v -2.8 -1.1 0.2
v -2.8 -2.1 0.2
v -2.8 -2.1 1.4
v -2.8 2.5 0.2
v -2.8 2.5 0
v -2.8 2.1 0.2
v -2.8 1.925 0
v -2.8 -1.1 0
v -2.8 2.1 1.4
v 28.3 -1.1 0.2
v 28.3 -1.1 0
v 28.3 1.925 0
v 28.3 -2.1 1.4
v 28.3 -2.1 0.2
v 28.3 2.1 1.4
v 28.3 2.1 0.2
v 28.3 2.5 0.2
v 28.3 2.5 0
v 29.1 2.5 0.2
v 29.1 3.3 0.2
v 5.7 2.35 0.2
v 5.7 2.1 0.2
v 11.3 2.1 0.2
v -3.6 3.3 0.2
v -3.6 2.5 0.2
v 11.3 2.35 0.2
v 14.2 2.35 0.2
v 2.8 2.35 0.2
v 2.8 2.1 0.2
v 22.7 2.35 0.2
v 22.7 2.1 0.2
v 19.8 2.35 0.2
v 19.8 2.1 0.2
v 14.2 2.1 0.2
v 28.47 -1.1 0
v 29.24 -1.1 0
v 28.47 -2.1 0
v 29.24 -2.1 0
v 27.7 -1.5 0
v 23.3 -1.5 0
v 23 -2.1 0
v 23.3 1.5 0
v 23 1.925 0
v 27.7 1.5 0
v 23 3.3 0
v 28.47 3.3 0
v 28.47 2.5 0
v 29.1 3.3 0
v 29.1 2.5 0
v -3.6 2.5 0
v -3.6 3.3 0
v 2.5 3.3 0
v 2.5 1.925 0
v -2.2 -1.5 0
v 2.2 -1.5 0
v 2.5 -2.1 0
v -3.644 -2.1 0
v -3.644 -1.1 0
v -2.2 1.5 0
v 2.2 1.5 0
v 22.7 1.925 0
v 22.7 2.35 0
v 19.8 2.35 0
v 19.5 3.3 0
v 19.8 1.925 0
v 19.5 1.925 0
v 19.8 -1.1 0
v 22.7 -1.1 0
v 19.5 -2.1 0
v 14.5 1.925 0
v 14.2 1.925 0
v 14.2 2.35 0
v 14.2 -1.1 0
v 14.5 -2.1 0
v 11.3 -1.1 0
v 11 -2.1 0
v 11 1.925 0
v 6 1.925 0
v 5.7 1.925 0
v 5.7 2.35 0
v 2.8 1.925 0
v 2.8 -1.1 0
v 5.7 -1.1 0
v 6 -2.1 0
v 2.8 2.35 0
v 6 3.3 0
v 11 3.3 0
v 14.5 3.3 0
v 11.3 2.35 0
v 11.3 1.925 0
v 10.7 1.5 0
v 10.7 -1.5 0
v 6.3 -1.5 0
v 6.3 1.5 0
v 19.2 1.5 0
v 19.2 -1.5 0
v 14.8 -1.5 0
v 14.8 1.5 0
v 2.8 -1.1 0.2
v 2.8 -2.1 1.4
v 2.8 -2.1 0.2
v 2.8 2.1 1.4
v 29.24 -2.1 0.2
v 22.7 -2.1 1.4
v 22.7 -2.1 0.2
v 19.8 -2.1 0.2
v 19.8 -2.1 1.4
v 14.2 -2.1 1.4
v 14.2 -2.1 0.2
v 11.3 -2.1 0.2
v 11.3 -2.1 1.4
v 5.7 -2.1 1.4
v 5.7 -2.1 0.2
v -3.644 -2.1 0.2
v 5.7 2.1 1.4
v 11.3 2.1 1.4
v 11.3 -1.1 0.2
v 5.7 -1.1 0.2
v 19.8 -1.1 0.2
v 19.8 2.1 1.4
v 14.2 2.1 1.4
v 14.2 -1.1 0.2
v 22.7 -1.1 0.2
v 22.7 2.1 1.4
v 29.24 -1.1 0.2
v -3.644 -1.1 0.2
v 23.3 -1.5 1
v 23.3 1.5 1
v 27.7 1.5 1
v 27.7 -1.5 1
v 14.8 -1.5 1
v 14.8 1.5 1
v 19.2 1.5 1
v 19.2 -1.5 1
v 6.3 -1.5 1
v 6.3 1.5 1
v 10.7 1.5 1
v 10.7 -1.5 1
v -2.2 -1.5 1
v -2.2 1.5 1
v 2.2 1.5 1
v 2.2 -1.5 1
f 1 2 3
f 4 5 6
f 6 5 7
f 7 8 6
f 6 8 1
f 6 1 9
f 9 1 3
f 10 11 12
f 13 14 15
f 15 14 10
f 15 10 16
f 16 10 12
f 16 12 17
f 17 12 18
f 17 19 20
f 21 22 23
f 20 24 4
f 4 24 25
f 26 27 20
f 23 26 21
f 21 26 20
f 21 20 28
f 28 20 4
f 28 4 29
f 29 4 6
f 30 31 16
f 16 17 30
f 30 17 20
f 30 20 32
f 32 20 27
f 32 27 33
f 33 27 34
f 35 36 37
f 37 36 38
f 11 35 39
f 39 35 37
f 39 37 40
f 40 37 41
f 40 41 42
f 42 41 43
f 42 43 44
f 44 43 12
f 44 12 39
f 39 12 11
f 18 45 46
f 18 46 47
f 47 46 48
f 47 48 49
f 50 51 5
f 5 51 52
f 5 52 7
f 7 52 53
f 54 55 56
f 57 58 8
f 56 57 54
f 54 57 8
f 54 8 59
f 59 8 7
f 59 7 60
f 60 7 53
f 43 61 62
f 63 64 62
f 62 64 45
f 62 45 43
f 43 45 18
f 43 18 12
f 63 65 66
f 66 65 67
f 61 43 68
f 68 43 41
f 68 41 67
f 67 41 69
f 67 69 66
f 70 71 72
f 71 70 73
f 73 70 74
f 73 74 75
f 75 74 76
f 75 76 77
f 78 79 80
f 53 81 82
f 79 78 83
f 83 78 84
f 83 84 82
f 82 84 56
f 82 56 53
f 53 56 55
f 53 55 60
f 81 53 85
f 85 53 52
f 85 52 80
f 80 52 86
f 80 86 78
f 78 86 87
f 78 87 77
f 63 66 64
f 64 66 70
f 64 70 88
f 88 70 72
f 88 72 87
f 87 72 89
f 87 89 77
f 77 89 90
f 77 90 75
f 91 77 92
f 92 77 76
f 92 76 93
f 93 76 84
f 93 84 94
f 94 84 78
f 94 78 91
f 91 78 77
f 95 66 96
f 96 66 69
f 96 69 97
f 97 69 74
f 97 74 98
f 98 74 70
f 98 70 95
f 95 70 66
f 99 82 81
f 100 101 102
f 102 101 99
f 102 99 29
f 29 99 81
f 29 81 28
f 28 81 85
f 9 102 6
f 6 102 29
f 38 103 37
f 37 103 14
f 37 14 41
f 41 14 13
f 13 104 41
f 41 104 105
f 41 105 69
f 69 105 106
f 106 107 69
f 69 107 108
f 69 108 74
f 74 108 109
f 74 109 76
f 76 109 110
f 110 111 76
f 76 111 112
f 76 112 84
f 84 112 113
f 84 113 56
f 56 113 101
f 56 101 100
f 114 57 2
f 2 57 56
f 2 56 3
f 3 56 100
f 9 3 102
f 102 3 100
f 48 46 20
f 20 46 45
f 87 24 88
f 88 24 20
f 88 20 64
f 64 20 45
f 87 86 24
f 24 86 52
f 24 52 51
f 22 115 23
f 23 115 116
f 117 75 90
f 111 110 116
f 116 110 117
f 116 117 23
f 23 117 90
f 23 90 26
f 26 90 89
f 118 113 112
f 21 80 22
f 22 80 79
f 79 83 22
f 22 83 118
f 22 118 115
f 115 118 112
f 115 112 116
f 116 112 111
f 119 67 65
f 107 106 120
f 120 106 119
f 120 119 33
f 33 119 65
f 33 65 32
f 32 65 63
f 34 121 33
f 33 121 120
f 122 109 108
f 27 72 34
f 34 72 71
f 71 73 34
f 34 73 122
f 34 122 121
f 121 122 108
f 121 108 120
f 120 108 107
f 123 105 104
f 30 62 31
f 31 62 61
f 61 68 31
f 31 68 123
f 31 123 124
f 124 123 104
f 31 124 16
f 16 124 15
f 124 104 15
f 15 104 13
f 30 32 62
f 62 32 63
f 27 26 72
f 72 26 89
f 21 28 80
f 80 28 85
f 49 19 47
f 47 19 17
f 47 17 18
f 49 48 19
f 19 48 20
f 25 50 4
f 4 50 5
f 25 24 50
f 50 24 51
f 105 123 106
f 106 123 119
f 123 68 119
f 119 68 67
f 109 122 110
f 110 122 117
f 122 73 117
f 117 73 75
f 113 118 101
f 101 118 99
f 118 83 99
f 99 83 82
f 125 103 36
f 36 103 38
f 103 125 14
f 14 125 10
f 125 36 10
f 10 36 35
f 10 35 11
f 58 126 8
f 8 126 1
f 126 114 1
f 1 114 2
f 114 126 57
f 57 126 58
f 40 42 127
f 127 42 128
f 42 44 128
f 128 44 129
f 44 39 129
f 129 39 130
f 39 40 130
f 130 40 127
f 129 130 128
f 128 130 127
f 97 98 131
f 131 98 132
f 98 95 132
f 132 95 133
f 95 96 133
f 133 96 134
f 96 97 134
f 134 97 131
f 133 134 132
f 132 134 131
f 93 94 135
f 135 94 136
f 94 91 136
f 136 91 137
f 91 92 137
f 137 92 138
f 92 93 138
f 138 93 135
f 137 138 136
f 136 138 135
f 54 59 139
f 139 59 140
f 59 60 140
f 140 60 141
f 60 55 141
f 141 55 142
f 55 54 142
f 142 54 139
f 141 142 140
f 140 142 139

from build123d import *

# Parameters (mm, degrees)
SKETCH_1_W             = 5.6
SKETCH_1_H             = 4.2
EXTRUDE_1_DEPTH        = 1.4
SKETCH_3_W             = 31.1
SKETCH_3_H             = 1.5
EXTRUDE_2_DEPTH        = 0.2
PATTERN_LINEAR_1_COUNT = 4
PATTERN_LINEAR_1_PITCH = 8.5
SKETCH_4_W             = 2.9
SKETCH_4_H             = 1.1
CUT_EXTRUDE_1_DEPTH    = 0.2
SKETCH_5_W             = 0.2
SKETCH_5_H             = 0.8
EXTRUDE_3_DEPTH        = 0.8
SKETCH_6_W             = 0.2
SKETCH_6_H             = 0.8
EXTRUDE_4_DEPTH        = 0.8
SKETCH_7_W             = 32.884134448
SKETCH_7_H             = 1
EXTRUDE_5_DEPTH        = 0.2
CUT_EXTRUDE_START      = -0.4
SKETCH_8_W             = 4.4
SKETCH_8_H             = 3
CUT_EXTRUDE_2_DEPTH    = 1


with BuildPart() as part:
    # Эскиз1 → Бобышка-Вытянуть1 (new body)
    with BuildSketch(Plane.XY):
        Rectangle(SKETCH_1_W, SKETCH_1_H)
    extrude_1 = extrude(amount=EXTRUDE_1_DEPTH)

    # Эскиз3 → Бобышка-Вытянуть2 (add)
    with BuildSketch(Plane(origin=(0, 0, 0), x_dir=(-1, 0, 0), z_dir=(0, 0, -1))):
        with Locations((-12.75, 2.55)):
            Rectangle(SKETCH_3_W, SKETCH_3_H)
    extrude(amount=-EXTRUDE_2_DEPTH)

    # Линейный массив1: Бобышка-Вытянуть1 ×4
    with Locations(*[(i * PATTERN_LINEAR_1_PITCH, 0, 0) for i in range(1, PATTERN_LINEAR_1_COUNT)]):
        add(extrude_1)

    # Эскиз4 → Вырез-Вытянуть1 (cut)
    with BuildSketch(Plane(origin=(0, 0, 0), x_dir=(-1, 0, 0), z_dir=(0, 0, -1))):
        with Locations((-21.25, 1.8)):
            Rectangle(SKETCH_4_W, SKETCH_4_H)
        with Locations((-12.75, 1.8)):
            Rectangle(SKETCH_4_W, SKETCH_4_H)
        with Locations((-4.25, 1.8)):
            Rectangle(SKETCH_4_W, SKETCH_4_H)
    extrude(amount=-CUT_EXTRUDE_1_DEPTH, mode=Mode.SUBTRACT)

    # Эскиз5 → Бобышка-Вытянуть3 (add)
    with BuildSketch(Plane(origin=(28.3, 0, 0), x_dir=(0, 0, -1), z_dir=(1, 0, 0))):
        with Locations((-0.1, 2.9)):
            Rectangle(SKETCH_5_W, SKETCH_5_H)
    extrude(amount=EXTRUDE_3_DEPTH)

    # Эскиз6 → Бобышка-Вытянуть4 (add)
    with BuildSketch(Plane.ZY.offset(2.8)):
        with Locations((0.1, 2.9)):
            Rectangle(SKETCH_6_W, SKETCH_6_H)
    extrude(amount=EXTRUDE_4_DEPTH)

    # Эскиз7 → Бобышка-Вытянуть5 (add)
    with BuildSketch(Plane(origin=(0, 0, 0), x_dir=(-1, 0, 0), z_dir=(0, 0, -1))):
        with Locations((-12.798406479, -1.6)):
            Rectangle(SKETCH_7_W, SKETCH_7_H)
    extrude(amount=-EXTRUDE_5_DEPTH)

    # Эскиз8 → Вырез-Вытянуть2 (cut)
    with BuildSketch(Plane.XY.offset(1.4).offset(CUT_EXTRUDE_START)):
        Rectangle(SKETCH_8_W, SKETCH_8_H)
        with Locations((8.5, 0)):
            Rectangle(SKETCH_8_W, SKETCH_8_H)
        with Locations((17, 0)):
            Rectangle(SKETCH_8_W, SKETCH_8_H)
        with Locations((25.5, 0)):
            Rectangle(SKETCH_8_W, SKETCH_8_H)
    extrude(amount=-CUT_EXTRUDE_2_DEPTH, mode=Mode.SUBTRACT)


solid = part.part
